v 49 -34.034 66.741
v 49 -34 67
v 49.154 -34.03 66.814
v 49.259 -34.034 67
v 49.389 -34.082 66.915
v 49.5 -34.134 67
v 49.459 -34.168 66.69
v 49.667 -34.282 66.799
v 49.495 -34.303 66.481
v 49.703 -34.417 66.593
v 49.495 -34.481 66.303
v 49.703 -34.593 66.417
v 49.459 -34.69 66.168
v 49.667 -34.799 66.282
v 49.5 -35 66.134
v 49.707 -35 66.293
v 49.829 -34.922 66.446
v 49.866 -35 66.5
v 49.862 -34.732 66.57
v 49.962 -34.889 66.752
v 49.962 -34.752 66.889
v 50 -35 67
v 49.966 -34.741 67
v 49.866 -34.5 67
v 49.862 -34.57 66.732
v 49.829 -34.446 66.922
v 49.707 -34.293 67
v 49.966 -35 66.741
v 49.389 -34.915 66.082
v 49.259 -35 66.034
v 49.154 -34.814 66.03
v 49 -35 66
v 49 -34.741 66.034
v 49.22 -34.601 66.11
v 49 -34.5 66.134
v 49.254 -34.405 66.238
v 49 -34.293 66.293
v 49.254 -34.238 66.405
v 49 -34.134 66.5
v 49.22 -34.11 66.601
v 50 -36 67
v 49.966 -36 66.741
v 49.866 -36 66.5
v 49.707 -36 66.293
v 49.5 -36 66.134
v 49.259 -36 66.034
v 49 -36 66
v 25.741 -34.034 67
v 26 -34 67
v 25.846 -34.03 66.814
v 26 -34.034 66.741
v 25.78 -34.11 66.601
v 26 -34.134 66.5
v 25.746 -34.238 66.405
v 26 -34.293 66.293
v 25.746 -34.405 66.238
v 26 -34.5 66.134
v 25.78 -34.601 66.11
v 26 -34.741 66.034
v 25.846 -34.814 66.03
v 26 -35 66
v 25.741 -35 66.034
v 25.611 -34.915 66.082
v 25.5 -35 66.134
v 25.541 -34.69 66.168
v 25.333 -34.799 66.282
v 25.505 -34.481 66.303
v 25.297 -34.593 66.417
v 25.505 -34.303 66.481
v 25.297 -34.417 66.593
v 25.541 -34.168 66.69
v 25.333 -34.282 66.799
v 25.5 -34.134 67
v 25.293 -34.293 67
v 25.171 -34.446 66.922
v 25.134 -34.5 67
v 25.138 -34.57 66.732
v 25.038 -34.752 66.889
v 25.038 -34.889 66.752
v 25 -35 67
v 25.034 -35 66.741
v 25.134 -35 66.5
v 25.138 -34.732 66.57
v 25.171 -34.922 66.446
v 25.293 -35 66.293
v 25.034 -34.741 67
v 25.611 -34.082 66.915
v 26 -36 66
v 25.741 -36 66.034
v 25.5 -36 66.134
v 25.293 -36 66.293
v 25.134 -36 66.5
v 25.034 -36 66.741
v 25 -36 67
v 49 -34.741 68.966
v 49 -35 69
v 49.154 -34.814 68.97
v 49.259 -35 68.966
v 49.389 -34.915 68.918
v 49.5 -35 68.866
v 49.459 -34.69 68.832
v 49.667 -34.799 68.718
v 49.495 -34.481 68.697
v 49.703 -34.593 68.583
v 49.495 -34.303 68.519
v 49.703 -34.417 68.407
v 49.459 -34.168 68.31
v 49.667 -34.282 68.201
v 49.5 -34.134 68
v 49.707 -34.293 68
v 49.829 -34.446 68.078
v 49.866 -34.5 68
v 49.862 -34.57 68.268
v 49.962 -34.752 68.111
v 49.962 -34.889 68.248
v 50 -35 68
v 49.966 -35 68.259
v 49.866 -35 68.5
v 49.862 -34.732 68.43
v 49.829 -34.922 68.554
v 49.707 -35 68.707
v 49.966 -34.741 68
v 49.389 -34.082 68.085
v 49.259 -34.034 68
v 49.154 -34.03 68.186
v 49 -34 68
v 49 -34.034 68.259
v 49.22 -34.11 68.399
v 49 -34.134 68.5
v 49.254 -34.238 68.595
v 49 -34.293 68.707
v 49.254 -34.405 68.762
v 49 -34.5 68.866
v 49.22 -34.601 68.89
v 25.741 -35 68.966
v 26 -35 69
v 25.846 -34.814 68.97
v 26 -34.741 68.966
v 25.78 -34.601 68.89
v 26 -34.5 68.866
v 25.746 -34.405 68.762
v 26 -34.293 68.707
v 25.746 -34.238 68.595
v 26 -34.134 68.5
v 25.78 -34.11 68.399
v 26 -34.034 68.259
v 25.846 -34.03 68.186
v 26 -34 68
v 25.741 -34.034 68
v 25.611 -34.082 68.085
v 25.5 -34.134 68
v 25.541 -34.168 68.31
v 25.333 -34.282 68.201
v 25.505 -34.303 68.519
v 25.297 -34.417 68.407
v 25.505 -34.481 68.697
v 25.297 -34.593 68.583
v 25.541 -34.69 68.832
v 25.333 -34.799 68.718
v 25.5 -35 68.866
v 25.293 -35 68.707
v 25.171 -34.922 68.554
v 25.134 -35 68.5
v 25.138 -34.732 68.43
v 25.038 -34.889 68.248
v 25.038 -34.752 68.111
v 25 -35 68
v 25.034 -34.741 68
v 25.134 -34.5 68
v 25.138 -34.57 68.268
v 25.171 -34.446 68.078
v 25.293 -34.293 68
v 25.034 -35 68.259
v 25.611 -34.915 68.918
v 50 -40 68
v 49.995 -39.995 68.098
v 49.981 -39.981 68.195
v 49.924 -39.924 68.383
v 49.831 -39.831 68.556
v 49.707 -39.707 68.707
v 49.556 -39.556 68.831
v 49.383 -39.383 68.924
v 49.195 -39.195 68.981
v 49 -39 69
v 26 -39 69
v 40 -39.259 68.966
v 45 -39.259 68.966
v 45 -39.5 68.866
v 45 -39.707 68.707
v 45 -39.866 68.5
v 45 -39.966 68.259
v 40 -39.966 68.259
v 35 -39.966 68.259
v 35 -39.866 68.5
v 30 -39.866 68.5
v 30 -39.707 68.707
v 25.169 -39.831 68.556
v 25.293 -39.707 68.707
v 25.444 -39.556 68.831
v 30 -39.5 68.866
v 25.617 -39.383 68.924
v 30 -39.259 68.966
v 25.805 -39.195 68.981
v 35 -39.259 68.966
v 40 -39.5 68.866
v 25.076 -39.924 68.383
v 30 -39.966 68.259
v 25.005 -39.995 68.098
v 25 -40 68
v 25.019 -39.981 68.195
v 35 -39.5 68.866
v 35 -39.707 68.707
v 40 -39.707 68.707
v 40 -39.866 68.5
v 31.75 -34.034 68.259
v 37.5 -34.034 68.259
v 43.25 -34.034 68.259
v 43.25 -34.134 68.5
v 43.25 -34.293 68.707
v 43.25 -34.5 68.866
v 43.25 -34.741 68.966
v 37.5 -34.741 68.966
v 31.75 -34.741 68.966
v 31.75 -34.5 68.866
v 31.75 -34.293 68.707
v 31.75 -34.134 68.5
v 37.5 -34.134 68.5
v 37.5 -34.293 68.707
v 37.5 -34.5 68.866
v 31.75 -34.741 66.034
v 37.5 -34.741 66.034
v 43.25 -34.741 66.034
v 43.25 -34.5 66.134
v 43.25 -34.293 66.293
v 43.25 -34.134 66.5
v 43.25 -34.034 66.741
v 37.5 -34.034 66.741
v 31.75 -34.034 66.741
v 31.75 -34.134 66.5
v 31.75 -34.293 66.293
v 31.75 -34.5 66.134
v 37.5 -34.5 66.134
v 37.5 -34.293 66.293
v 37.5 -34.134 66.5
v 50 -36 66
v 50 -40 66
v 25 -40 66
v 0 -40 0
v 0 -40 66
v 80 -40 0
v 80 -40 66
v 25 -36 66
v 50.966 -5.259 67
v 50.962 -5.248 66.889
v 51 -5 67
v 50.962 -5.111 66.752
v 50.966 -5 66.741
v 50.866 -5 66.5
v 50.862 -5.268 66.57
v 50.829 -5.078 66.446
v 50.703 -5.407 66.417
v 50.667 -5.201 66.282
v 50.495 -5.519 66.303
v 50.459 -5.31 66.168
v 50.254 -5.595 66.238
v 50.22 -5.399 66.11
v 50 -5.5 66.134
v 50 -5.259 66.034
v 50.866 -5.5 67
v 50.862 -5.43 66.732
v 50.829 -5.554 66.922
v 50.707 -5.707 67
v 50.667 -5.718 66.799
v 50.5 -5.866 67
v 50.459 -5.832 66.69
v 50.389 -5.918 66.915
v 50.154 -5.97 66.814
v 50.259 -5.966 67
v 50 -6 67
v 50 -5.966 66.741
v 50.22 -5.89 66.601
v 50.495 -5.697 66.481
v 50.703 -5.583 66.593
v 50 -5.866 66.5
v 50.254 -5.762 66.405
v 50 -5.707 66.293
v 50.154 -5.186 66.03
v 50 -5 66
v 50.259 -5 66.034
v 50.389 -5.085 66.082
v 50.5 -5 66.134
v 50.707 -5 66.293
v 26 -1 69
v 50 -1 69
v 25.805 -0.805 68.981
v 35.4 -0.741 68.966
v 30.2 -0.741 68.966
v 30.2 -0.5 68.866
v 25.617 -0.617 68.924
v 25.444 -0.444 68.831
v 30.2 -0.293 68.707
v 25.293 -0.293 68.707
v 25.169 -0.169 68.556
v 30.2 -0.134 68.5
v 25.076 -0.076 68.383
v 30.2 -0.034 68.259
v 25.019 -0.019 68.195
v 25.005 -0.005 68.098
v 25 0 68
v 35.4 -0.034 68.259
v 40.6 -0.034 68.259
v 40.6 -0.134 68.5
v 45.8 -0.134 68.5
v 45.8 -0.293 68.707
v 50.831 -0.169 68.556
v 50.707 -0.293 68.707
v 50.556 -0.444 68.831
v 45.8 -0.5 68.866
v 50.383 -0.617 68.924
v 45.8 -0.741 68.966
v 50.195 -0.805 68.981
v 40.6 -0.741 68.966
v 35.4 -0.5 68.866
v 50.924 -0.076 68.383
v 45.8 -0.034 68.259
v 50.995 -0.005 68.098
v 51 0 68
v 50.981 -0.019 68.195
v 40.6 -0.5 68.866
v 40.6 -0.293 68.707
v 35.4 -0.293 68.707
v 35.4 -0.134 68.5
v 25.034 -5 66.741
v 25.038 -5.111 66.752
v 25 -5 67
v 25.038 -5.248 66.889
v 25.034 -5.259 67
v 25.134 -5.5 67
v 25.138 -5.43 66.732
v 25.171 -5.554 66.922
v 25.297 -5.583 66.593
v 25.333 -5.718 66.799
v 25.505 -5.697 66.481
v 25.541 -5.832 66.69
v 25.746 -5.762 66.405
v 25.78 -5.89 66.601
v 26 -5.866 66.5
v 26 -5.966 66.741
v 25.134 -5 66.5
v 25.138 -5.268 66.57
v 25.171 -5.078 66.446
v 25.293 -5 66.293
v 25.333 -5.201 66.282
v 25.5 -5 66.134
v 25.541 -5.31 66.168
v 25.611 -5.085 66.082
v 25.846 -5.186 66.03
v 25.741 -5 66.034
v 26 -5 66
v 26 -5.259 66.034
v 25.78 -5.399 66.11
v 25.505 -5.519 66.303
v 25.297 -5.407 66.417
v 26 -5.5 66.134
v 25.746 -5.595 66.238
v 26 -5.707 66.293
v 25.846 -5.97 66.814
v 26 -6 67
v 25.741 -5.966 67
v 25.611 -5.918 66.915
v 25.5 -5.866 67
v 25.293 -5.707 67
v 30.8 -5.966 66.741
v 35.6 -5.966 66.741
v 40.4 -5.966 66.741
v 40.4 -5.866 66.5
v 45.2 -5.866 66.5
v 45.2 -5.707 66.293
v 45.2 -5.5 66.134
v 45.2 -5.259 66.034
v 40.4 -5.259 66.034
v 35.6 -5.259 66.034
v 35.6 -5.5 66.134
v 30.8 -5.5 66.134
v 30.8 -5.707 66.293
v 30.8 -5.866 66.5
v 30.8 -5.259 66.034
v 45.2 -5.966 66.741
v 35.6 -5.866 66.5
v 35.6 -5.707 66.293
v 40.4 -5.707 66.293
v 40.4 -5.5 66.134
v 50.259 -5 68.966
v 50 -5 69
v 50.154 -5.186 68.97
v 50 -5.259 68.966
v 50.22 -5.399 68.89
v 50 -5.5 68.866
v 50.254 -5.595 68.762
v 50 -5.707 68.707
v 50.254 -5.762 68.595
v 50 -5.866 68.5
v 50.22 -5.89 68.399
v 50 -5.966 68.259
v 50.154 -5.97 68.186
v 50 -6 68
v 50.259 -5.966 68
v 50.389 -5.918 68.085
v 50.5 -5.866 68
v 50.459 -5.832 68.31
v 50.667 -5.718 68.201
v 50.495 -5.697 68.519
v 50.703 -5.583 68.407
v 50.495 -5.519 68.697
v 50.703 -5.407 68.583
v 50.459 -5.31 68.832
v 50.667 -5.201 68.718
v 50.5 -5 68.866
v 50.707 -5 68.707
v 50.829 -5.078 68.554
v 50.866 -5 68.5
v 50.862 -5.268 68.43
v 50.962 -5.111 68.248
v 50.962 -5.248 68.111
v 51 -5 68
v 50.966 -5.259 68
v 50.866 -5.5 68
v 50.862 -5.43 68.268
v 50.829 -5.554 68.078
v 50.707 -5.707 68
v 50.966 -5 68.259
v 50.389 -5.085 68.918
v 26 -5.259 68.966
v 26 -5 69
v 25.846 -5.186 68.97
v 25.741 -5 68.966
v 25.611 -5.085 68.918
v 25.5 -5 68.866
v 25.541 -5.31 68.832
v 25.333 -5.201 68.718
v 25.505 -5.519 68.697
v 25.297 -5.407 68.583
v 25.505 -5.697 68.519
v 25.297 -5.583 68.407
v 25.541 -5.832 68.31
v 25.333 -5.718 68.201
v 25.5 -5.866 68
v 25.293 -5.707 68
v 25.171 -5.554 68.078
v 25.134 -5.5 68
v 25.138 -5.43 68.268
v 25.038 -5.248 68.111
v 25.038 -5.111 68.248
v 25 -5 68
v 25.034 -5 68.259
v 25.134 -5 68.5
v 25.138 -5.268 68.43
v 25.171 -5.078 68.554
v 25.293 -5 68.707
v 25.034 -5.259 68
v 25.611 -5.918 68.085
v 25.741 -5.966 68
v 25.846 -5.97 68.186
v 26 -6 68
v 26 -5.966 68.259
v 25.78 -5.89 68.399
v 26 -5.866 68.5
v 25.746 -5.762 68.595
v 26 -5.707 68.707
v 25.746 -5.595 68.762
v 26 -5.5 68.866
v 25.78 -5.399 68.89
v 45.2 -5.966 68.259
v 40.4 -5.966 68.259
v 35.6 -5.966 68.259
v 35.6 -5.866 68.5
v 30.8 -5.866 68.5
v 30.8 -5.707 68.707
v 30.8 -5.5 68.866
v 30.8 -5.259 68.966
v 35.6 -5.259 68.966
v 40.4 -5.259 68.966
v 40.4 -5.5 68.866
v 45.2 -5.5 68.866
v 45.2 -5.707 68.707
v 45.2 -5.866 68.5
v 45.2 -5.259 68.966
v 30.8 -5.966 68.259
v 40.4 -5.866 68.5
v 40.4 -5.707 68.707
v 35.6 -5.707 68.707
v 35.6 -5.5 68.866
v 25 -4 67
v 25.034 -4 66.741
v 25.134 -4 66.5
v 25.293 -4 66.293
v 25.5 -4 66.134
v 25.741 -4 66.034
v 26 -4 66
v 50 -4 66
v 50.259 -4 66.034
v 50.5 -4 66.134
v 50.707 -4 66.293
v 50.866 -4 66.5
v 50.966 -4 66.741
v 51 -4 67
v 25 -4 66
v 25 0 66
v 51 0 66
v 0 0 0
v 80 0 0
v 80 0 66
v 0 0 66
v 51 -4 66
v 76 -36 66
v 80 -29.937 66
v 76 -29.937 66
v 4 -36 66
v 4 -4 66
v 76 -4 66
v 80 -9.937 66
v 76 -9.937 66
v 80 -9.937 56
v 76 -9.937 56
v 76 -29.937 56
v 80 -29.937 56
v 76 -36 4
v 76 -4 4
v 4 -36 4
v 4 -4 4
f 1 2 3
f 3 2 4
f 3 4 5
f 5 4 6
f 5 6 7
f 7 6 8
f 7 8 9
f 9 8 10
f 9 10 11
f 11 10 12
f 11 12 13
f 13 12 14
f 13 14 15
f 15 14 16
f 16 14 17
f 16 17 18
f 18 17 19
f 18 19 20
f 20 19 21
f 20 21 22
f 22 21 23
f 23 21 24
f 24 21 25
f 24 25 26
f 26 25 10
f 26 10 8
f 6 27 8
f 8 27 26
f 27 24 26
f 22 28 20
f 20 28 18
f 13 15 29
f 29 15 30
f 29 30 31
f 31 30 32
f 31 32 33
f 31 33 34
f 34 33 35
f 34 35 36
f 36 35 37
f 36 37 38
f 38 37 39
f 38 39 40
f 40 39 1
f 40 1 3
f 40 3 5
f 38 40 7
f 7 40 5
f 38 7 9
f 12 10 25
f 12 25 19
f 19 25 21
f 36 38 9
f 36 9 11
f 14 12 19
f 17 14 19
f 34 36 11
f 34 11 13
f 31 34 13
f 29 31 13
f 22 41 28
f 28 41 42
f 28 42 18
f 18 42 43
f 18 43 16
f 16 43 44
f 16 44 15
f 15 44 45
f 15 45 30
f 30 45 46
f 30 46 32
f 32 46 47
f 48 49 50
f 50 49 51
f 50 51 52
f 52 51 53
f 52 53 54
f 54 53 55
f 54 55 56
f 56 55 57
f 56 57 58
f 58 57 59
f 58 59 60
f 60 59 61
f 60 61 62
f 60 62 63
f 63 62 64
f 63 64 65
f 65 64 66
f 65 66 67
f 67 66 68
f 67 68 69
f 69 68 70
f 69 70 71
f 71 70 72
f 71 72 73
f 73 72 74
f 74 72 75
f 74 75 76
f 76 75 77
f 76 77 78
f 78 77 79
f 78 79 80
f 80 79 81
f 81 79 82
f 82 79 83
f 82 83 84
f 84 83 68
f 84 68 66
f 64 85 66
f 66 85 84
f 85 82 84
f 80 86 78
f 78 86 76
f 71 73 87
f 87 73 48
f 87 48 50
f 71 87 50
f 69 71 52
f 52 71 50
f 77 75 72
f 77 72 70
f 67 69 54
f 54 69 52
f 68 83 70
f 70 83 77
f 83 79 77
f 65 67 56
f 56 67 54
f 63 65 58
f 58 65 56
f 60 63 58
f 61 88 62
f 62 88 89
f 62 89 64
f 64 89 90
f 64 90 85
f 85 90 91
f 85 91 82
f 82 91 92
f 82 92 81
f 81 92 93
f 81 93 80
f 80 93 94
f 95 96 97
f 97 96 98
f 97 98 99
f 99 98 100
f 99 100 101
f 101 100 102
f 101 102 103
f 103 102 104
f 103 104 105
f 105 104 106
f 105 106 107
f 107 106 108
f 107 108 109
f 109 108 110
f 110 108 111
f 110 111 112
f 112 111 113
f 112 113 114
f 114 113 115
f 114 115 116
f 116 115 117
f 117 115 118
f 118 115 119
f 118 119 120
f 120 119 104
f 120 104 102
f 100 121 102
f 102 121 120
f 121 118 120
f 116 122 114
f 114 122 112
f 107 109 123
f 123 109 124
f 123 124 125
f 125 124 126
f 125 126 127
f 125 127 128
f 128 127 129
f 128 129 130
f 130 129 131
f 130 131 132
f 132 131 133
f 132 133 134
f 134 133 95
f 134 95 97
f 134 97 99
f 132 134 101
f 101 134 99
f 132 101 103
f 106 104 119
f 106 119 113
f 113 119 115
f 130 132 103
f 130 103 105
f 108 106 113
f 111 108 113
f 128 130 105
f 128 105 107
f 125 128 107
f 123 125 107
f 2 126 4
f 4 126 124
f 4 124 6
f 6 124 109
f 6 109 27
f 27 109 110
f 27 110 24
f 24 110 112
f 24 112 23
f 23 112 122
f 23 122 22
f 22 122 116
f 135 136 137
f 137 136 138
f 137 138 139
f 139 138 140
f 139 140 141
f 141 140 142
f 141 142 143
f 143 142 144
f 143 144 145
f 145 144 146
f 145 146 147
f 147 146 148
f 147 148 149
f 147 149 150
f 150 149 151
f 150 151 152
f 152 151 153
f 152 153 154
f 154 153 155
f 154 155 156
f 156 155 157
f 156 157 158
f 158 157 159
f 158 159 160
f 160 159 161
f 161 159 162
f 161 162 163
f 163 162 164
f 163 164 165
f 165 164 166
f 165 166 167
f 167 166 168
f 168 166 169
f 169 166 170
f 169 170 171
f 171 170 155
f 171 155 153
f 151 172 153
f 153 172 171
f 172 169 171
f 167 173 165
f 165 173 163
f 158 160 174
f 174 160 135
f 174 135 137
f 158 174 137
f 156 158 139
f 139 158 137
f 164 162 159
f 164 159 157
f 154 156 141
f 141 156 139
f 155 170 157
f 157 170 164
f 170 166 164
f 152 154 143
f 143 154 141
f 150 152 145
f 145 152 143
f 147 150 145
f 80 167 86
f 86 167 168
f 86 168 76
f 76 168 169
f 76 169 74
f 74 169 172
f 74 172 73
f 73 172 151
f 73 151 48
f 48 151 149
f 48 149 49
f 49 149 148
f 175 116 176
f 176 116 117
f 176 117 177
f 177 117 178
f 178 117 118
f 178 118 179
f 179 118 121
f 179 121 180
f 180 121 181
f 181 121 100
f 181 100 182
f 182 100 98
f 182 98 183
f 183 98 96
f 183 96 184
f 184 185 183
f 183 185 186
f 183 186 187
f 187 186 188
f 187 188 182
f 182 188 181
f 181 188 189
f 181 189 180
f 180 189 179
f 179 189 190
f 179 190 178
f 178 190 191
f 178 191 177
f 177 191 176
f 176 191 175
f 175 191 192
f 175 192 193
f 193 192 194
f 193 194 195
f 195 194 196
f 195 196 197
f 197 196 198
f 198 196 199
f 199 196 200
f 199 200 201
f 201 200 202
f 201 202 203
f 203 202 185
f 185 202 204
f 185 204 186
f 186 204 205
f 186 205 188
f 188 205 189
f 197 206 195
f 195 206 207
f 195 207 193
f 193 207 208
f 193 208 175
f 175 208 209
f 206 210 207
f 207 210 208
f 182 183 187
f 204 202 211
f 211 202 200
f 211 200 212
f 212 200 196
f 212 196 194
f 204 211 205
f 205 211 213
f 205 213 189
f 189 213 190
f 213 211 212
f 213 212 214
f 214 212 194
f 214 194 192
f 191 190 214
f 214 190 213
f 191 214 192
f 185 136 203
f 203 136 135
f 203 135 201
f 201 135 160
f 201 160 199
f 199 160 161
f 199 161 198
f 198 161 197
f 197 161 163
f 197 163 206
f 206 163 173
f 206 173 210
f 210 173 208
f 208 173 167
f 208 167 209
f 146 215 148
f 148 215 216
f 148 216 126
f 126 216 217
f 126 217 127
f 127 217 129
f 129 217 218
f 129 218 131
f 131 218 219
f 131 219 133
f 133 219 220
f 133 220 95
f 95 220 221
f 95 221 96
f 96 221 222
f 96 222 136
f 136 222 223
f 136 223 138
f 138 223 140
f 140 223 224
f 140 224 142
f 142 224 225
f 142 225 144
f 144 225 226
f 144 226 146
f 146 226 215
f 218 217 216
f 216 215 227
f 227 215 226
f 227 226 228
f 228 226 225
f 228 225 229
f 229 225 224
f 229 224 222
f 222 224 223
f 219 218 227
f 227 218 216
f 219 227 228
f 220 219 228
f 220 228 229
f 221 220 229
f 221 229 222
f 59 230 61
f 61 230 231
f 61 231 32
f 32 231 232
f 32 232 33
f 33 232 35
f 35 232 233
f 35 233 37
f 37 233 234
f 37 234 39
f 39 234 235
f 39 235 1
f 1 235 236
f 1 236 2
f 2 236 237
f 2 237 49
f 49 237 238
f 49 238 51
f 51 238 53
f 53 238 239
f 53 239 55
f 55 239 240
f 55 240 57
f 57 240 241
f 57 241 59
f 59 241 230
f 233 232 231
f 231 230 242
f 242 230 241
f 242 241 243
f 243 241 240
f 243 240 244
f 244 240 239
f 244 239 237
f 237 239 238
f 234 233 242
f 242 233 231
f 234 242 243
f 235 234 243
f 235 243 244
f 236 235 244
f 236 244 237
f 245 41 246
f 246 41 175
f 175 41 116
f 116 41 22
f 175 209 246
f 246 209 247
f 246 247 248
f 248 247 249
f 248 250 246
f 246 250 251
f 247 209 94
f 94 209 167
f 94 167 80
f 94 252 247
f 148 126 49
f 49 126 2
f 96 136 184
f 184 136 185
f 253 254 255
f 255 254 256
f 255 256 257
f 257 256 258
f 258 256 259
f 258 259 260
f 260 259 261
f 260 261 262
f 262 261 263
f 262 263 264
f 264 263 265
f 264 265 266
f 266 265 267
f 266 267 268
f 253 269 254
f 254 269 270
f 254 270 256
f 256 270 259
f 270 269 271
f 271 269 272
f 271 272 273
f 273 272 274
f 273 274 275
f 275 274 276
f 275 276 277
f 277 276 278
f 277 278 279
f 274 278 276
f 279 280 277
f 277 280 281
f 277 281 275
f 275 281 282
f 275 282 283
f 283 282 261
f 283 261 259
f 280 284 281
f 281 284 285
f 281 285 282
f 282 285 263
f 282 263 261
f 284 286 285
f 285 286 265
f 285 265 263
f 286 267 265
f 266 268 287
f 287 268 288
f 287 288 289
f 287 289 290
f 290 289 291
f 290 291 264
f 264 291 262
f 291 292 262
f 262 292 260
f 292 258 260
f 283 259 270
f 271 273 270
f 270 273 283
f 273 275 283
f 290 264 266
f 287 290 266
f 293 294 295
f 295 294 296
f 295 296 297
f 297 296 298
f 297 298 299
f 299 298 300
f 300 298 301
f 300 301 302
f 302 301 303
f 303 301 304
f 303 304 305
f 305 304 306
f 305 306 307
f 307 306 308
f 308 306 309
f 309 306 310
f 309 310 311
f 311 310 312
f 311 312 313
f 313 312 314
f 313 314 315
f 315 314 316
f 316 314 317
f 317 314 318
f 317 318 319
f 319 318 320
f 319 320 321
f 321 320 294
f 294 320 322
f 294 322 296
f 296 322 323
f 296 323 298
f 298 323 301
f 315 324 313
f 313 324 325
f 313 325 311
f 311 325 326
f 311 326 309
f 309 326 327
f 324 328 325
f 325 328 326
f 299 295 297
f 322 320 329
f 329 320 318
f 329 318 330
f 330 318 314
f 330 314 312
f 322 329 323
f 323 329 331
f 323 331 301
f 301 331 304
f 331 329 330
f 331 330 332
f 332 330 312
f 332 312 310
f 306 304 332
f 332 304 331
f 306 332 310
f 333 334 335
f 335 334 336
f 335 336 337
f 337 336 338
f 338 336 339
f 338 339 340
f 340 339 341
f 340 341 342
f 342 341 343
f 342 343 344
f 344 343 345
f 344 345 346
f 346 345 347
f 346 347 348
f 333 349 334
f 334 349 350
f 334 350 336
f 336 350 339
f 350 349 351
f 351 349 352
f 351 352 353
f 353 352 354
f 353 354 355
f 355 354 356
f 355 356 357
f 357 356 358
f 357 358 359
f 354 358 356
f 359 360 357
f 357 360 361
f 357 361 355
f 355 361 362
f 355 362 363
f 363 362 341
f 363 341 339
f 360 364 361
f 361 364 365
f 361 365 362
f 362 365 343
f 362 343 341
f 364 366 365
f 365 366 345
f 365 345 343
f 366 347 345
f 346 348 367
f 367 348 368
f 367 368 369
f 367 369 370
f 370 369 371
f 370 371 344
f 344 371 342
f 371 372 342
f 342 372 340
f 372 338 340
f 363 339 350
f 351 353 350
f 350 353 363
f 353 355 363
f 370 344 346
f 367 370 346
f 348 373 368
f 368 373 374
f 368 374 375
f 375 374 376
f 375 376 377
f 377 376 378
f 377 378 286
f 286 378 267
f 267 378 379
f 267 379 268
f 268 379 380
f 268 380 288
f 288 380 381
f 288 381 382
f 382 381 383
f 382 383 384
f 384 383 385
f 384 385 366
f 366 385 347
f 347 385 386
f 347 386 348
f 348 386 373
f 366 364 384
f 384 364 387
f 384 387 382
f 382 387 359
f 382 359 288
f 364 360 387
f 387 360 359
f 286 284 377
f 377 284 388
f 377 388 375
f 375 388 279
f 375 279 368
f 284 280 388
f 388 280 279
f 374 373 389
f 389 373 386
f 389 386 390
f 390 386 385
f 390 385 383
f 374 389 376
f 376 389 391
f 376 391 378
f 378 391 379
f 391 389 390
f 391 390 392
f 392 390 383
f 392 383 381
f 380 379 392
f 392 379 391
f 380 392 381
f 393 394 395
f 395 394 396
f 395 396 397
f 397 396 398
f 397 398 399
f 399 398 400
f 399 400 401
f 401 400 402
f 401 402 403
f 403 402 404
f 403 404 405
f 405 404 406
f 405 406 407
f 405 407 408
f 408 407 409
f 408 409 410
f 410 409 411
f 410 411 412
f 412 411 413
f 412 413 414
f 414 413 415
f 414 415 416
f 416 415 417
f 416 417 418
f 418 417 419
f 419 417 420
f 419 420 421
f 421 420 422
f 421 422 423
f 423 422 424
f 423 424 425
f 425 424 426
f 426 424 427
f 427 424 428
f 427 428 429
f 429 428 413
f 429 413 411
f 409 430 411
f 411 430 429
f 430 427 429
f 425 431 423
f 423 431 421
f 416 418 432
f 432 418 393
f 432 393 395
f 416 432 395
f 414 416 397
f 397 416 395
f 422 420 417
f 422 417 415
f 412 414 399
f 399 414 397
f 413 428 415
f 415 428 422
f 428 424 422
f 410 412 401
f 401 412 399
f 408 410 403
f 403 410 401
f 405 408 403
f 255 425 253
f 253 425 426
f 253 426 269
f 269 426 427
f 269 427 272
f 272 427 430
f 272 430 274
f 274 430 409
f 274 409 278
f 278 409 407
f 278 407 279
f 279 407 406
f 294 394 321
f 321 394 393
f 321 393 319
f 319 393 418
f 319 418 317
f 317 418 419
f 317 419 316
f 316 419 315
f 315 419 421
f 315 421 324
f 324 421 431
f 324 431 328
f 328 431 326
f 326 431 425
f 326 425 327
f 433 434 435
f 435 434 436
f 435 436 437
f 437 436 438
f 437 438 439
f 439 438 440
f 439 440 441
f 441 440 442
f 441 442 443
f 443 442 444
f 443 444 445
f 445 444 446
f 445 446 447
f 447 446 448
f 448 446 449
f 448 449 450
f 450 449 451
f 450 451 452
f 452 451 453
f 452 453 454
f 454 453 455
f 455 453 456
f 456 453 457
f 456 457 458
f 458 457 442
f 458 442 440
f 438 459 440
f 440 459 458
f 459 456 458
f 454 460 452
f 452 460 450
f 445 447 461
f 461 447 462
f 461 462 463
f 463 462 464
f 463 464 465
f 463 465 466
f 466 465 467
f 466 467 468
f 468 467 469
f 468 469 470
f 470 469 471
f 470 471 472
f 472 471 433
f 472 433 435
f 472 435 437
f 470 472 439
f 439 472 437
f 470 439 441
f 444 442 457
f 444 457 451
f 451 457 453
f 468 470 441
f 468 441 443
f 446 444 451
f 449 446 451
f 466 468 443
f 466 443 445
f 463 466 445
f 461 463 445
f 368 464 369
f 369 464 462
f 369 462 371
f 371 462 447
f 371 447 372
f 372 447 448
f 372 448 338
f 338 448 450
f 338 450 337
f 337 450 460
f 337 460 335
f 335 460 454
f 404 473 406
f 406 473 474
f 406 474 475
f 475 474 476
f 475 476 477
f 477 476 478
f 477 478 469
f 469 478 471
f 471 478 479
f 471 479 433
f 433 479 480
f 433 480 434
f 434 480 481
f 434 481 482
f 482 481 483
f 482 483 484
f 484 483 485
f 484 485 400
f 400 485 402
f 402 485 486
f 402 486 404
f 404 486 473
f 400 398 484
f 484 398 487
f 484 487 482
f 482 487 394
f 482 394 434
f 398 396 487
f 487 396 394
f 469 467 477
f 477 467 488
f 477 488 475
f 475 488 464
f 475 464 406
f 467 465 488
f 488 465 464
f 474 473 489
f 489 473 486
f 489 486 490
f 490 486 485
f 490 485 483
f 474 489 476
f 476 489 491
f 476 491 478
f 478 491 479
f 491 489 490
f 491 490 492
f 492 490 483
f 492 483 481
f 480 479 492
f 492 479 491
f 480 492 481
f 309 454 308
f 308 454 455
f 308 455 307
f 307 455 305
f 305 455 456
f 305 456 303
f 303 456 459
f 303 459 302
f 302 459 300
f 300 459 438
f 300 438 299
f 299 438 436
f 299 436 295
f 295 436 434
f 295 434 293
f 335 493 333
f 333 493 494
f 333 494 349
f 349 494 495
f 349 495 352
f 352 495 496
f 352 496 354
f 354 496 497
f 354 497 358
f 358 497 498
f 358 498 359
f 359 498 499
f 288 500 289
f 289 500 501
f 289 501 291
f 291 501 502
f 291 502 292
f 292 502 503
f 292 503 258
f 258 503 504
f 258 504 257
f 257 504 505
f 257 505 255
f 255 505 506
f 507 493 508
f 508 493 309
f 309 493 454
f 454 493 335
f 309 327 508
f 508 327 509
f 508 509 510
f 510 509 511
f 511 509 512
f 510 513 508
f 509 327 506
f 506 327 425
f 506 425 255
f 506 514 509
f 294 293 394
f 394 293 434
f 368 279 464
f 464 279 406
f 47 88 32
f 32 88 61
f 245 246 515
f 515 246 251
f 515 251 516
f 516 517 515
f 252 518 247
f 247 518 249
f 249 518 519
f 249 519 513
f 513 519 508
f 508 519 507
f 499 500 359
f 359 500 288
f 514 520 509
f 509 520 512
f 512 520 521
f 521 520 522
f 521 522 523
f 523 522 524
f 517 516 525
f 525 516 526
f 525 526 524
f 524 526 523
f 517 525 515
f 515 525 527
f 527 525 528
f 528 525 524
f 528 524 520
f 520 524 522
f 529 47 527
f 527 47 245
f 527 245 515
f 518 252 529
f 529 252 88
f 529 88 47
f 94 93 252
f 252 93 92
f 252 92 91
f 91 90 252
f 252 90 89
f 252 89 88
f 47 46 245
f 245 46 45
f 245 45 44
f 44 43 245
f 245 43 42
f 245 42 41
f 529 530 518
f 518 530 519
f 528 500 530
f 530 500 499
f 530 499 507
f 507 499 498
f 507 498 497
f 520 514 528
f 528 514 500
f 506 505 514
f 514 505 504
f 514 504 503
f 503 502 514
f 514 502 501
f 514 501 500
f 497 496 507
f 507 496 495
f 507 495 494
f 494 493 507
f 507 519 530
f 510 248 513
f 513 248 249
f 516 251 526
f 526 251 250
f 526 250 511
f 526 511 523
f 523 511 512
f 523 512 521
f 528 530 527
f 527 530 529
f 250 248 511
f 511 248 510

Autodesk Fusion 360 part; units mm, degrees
sketch "Skizze1" plane through (0, 0, 0) normal (0, 0, 1) x (1, 0, 0)
  line L0 (0, 0) -> (80, 0)
  line L1 (80, 0) -> (80, -40)
  line L2 (80, -40) -> (0, -40)
  line L3 (0, -40) -> (0, 0)
  line L4 (76, -36) -> (4, -36)
  line L5 (4, -36) -> (4, -4)
  line L6 (4, -4) -> (76, -4)
  line L7 (76, -4) -> (76, -36)
  dimension "d1" = 80
  dimension "d2" = 40
  dimension "d3" = 4
extrude "Extrusion1" add sketch "Skizze1" along normal blind 4 contours L4 L5 L6 L7
sketch "Skizze2" plane through (0, 0, 0) normal (0, 0, 1) x (1, 0, 0)
  line L0 (0, 0) -> (80, 0)
  line L1 (80, 0) -> (80, -40)
  line L2 (80, -40) -> (0, -40)
  line L3 (0, -40) -> (0, 0)
  line L4 (76, -4) -> (76, -36)
  line L5 (76, -36) -> (4, -36)
  line L6 (4, -36) -> (4, -4)
  line L7 (4, -4) -> (76, -4)
  dimension "d6" = 80
  dimension "d7" = 40
  dimension "d8" = 4
extrude "Extrusion2" add sketch "Skizze2" along normal blind 66
sketch "Skizze3" plane through (0, 0, 66) normal (0, 0, 1) x (-1, 0, 0)
  line L0 (-4, 36) -> (-4, 4)
  line L1 (-4, 4) -> (-76, 4)
  line L2 (-76, 4) -> (-76, 36)
  line L3 (-76, 36) -> (-4, 36)
  line L4 (0, 40) -> (-80, 40)
  line L5 (-80, 40) -> (-80, 0)
  line L6 (-80, 0) -> (0, 0)
  line L7 (0, 0) -> (0, 40)
  line L8 (-76, 9.9367) -> (-80, 9.9367)
  line L9 (-80, 9.9367) -> (-80, 29.9367)
  line L10 (-80, 29.9367) -> (-76, 29.9367)
  line L11 (-76, 29.9367) -> (-76, 9.9367)
  dimension "d11" = 4
  dimension "d12" = 20
extrude "Extrusion3" cut sketch "Skizze3" against normal blind 10 contours L2 L5 L8 L9 L10 L11
sketch "Skizze4" plane through (0, 0, 66) normal (0, 0, 1) x (-1, 0, 0)
  line L0 (-80, 29.9367) -> (-76, 29.9367)
  line L1 (-76, 29.9367) -> (-76, 36)
  line L2 (-76, 36) -> (-4, 36)
  line L3 (-4, 36) -> (-4, 4)
  line L4 (-4, 4) -> (-76, 4)
  line L5 (-76, 4) -> (-76, 9.9367)
  line L6 (-76, 9.9367) -> (-80, 9.9367)
  line L7 (-80, 9.9367) -> (-80, 0)
  line L8 (-80, 0) -> (0, 0)
  line L9 (0, 0) -> (0, 40)
  line L10 (0, 40) -> (-80, 40)
  line L11 (-80, 40) -> (-80, 29.9367)
  line L12 (-25, 0) -> (-51, 0)
  line L13 (-51, 0) -> (-51, 6)
  line L14 (-51, 6) -> (-25, 6)
  line L15 (-25, 6) -> (-25, 0)
  dimension "d15" = 26
extrude "Extrusion4" add sketch "Skizze4" along normal blind 3 contours L4 L8 L12 L13 L15 | L4 L13 L14 L15
sketch "Skizze5" plane through (0, 0, 66) normal (0, 0, 1) x (-1, 0, 0)
  line L0 (-25, 4) -> (-25, 0)
  line L1 (-25, 0) -> (0, 0)
  line L2 (0, 0) -> (0, 40)
  line L3 (0, 40) -> (-80, 40)
  line L4 (-80, 40) -> (-80, 29.9367)
  line L5 (-80, 29.9367) -> (-76, 29.9367)
  line L6 (-76, 29.9367) -> (-76, 36)
  line L7 (-76, 36) -> (-4, 36)
  line L8 (-4, 36) -> (-4, 4)
  line L9 (-4, 4) -> (-25, 4)
  line L10 (-25, 40) -> (-50, 40)
  line L11 (-50, 40) -> (-50, 34)
  line L12 (-50, 34) -> (-25, 34)
  line L13 (-25, 34) -> (-25, 40)
  dimension "d18" = 25
  dimension "d19" = 6
extrude "Extrusion5" add sketch "Skizze5" along normal blind 3 contours L7 L11 L12 L13 | L3 L7 L10 L11 L13
fillet "Abrundung1" radius 1 18 edges at (38, -6, 69) (51, -6, 67.5) (25, -6, 67.5) (38, -6, 66) (51, -3, 69) (37.5, -40, 69) (50, -37, 69) (50, -34, 67.5) (37.5, -34, 69) (25, -37, 69) (25, -3, 69) (25, -34, 67.5) (37.5, -34, 66) (25, -35, 66) (51, -5, 66) (50, -35, 66) (25, -5, 66) (38, 0, 69)
